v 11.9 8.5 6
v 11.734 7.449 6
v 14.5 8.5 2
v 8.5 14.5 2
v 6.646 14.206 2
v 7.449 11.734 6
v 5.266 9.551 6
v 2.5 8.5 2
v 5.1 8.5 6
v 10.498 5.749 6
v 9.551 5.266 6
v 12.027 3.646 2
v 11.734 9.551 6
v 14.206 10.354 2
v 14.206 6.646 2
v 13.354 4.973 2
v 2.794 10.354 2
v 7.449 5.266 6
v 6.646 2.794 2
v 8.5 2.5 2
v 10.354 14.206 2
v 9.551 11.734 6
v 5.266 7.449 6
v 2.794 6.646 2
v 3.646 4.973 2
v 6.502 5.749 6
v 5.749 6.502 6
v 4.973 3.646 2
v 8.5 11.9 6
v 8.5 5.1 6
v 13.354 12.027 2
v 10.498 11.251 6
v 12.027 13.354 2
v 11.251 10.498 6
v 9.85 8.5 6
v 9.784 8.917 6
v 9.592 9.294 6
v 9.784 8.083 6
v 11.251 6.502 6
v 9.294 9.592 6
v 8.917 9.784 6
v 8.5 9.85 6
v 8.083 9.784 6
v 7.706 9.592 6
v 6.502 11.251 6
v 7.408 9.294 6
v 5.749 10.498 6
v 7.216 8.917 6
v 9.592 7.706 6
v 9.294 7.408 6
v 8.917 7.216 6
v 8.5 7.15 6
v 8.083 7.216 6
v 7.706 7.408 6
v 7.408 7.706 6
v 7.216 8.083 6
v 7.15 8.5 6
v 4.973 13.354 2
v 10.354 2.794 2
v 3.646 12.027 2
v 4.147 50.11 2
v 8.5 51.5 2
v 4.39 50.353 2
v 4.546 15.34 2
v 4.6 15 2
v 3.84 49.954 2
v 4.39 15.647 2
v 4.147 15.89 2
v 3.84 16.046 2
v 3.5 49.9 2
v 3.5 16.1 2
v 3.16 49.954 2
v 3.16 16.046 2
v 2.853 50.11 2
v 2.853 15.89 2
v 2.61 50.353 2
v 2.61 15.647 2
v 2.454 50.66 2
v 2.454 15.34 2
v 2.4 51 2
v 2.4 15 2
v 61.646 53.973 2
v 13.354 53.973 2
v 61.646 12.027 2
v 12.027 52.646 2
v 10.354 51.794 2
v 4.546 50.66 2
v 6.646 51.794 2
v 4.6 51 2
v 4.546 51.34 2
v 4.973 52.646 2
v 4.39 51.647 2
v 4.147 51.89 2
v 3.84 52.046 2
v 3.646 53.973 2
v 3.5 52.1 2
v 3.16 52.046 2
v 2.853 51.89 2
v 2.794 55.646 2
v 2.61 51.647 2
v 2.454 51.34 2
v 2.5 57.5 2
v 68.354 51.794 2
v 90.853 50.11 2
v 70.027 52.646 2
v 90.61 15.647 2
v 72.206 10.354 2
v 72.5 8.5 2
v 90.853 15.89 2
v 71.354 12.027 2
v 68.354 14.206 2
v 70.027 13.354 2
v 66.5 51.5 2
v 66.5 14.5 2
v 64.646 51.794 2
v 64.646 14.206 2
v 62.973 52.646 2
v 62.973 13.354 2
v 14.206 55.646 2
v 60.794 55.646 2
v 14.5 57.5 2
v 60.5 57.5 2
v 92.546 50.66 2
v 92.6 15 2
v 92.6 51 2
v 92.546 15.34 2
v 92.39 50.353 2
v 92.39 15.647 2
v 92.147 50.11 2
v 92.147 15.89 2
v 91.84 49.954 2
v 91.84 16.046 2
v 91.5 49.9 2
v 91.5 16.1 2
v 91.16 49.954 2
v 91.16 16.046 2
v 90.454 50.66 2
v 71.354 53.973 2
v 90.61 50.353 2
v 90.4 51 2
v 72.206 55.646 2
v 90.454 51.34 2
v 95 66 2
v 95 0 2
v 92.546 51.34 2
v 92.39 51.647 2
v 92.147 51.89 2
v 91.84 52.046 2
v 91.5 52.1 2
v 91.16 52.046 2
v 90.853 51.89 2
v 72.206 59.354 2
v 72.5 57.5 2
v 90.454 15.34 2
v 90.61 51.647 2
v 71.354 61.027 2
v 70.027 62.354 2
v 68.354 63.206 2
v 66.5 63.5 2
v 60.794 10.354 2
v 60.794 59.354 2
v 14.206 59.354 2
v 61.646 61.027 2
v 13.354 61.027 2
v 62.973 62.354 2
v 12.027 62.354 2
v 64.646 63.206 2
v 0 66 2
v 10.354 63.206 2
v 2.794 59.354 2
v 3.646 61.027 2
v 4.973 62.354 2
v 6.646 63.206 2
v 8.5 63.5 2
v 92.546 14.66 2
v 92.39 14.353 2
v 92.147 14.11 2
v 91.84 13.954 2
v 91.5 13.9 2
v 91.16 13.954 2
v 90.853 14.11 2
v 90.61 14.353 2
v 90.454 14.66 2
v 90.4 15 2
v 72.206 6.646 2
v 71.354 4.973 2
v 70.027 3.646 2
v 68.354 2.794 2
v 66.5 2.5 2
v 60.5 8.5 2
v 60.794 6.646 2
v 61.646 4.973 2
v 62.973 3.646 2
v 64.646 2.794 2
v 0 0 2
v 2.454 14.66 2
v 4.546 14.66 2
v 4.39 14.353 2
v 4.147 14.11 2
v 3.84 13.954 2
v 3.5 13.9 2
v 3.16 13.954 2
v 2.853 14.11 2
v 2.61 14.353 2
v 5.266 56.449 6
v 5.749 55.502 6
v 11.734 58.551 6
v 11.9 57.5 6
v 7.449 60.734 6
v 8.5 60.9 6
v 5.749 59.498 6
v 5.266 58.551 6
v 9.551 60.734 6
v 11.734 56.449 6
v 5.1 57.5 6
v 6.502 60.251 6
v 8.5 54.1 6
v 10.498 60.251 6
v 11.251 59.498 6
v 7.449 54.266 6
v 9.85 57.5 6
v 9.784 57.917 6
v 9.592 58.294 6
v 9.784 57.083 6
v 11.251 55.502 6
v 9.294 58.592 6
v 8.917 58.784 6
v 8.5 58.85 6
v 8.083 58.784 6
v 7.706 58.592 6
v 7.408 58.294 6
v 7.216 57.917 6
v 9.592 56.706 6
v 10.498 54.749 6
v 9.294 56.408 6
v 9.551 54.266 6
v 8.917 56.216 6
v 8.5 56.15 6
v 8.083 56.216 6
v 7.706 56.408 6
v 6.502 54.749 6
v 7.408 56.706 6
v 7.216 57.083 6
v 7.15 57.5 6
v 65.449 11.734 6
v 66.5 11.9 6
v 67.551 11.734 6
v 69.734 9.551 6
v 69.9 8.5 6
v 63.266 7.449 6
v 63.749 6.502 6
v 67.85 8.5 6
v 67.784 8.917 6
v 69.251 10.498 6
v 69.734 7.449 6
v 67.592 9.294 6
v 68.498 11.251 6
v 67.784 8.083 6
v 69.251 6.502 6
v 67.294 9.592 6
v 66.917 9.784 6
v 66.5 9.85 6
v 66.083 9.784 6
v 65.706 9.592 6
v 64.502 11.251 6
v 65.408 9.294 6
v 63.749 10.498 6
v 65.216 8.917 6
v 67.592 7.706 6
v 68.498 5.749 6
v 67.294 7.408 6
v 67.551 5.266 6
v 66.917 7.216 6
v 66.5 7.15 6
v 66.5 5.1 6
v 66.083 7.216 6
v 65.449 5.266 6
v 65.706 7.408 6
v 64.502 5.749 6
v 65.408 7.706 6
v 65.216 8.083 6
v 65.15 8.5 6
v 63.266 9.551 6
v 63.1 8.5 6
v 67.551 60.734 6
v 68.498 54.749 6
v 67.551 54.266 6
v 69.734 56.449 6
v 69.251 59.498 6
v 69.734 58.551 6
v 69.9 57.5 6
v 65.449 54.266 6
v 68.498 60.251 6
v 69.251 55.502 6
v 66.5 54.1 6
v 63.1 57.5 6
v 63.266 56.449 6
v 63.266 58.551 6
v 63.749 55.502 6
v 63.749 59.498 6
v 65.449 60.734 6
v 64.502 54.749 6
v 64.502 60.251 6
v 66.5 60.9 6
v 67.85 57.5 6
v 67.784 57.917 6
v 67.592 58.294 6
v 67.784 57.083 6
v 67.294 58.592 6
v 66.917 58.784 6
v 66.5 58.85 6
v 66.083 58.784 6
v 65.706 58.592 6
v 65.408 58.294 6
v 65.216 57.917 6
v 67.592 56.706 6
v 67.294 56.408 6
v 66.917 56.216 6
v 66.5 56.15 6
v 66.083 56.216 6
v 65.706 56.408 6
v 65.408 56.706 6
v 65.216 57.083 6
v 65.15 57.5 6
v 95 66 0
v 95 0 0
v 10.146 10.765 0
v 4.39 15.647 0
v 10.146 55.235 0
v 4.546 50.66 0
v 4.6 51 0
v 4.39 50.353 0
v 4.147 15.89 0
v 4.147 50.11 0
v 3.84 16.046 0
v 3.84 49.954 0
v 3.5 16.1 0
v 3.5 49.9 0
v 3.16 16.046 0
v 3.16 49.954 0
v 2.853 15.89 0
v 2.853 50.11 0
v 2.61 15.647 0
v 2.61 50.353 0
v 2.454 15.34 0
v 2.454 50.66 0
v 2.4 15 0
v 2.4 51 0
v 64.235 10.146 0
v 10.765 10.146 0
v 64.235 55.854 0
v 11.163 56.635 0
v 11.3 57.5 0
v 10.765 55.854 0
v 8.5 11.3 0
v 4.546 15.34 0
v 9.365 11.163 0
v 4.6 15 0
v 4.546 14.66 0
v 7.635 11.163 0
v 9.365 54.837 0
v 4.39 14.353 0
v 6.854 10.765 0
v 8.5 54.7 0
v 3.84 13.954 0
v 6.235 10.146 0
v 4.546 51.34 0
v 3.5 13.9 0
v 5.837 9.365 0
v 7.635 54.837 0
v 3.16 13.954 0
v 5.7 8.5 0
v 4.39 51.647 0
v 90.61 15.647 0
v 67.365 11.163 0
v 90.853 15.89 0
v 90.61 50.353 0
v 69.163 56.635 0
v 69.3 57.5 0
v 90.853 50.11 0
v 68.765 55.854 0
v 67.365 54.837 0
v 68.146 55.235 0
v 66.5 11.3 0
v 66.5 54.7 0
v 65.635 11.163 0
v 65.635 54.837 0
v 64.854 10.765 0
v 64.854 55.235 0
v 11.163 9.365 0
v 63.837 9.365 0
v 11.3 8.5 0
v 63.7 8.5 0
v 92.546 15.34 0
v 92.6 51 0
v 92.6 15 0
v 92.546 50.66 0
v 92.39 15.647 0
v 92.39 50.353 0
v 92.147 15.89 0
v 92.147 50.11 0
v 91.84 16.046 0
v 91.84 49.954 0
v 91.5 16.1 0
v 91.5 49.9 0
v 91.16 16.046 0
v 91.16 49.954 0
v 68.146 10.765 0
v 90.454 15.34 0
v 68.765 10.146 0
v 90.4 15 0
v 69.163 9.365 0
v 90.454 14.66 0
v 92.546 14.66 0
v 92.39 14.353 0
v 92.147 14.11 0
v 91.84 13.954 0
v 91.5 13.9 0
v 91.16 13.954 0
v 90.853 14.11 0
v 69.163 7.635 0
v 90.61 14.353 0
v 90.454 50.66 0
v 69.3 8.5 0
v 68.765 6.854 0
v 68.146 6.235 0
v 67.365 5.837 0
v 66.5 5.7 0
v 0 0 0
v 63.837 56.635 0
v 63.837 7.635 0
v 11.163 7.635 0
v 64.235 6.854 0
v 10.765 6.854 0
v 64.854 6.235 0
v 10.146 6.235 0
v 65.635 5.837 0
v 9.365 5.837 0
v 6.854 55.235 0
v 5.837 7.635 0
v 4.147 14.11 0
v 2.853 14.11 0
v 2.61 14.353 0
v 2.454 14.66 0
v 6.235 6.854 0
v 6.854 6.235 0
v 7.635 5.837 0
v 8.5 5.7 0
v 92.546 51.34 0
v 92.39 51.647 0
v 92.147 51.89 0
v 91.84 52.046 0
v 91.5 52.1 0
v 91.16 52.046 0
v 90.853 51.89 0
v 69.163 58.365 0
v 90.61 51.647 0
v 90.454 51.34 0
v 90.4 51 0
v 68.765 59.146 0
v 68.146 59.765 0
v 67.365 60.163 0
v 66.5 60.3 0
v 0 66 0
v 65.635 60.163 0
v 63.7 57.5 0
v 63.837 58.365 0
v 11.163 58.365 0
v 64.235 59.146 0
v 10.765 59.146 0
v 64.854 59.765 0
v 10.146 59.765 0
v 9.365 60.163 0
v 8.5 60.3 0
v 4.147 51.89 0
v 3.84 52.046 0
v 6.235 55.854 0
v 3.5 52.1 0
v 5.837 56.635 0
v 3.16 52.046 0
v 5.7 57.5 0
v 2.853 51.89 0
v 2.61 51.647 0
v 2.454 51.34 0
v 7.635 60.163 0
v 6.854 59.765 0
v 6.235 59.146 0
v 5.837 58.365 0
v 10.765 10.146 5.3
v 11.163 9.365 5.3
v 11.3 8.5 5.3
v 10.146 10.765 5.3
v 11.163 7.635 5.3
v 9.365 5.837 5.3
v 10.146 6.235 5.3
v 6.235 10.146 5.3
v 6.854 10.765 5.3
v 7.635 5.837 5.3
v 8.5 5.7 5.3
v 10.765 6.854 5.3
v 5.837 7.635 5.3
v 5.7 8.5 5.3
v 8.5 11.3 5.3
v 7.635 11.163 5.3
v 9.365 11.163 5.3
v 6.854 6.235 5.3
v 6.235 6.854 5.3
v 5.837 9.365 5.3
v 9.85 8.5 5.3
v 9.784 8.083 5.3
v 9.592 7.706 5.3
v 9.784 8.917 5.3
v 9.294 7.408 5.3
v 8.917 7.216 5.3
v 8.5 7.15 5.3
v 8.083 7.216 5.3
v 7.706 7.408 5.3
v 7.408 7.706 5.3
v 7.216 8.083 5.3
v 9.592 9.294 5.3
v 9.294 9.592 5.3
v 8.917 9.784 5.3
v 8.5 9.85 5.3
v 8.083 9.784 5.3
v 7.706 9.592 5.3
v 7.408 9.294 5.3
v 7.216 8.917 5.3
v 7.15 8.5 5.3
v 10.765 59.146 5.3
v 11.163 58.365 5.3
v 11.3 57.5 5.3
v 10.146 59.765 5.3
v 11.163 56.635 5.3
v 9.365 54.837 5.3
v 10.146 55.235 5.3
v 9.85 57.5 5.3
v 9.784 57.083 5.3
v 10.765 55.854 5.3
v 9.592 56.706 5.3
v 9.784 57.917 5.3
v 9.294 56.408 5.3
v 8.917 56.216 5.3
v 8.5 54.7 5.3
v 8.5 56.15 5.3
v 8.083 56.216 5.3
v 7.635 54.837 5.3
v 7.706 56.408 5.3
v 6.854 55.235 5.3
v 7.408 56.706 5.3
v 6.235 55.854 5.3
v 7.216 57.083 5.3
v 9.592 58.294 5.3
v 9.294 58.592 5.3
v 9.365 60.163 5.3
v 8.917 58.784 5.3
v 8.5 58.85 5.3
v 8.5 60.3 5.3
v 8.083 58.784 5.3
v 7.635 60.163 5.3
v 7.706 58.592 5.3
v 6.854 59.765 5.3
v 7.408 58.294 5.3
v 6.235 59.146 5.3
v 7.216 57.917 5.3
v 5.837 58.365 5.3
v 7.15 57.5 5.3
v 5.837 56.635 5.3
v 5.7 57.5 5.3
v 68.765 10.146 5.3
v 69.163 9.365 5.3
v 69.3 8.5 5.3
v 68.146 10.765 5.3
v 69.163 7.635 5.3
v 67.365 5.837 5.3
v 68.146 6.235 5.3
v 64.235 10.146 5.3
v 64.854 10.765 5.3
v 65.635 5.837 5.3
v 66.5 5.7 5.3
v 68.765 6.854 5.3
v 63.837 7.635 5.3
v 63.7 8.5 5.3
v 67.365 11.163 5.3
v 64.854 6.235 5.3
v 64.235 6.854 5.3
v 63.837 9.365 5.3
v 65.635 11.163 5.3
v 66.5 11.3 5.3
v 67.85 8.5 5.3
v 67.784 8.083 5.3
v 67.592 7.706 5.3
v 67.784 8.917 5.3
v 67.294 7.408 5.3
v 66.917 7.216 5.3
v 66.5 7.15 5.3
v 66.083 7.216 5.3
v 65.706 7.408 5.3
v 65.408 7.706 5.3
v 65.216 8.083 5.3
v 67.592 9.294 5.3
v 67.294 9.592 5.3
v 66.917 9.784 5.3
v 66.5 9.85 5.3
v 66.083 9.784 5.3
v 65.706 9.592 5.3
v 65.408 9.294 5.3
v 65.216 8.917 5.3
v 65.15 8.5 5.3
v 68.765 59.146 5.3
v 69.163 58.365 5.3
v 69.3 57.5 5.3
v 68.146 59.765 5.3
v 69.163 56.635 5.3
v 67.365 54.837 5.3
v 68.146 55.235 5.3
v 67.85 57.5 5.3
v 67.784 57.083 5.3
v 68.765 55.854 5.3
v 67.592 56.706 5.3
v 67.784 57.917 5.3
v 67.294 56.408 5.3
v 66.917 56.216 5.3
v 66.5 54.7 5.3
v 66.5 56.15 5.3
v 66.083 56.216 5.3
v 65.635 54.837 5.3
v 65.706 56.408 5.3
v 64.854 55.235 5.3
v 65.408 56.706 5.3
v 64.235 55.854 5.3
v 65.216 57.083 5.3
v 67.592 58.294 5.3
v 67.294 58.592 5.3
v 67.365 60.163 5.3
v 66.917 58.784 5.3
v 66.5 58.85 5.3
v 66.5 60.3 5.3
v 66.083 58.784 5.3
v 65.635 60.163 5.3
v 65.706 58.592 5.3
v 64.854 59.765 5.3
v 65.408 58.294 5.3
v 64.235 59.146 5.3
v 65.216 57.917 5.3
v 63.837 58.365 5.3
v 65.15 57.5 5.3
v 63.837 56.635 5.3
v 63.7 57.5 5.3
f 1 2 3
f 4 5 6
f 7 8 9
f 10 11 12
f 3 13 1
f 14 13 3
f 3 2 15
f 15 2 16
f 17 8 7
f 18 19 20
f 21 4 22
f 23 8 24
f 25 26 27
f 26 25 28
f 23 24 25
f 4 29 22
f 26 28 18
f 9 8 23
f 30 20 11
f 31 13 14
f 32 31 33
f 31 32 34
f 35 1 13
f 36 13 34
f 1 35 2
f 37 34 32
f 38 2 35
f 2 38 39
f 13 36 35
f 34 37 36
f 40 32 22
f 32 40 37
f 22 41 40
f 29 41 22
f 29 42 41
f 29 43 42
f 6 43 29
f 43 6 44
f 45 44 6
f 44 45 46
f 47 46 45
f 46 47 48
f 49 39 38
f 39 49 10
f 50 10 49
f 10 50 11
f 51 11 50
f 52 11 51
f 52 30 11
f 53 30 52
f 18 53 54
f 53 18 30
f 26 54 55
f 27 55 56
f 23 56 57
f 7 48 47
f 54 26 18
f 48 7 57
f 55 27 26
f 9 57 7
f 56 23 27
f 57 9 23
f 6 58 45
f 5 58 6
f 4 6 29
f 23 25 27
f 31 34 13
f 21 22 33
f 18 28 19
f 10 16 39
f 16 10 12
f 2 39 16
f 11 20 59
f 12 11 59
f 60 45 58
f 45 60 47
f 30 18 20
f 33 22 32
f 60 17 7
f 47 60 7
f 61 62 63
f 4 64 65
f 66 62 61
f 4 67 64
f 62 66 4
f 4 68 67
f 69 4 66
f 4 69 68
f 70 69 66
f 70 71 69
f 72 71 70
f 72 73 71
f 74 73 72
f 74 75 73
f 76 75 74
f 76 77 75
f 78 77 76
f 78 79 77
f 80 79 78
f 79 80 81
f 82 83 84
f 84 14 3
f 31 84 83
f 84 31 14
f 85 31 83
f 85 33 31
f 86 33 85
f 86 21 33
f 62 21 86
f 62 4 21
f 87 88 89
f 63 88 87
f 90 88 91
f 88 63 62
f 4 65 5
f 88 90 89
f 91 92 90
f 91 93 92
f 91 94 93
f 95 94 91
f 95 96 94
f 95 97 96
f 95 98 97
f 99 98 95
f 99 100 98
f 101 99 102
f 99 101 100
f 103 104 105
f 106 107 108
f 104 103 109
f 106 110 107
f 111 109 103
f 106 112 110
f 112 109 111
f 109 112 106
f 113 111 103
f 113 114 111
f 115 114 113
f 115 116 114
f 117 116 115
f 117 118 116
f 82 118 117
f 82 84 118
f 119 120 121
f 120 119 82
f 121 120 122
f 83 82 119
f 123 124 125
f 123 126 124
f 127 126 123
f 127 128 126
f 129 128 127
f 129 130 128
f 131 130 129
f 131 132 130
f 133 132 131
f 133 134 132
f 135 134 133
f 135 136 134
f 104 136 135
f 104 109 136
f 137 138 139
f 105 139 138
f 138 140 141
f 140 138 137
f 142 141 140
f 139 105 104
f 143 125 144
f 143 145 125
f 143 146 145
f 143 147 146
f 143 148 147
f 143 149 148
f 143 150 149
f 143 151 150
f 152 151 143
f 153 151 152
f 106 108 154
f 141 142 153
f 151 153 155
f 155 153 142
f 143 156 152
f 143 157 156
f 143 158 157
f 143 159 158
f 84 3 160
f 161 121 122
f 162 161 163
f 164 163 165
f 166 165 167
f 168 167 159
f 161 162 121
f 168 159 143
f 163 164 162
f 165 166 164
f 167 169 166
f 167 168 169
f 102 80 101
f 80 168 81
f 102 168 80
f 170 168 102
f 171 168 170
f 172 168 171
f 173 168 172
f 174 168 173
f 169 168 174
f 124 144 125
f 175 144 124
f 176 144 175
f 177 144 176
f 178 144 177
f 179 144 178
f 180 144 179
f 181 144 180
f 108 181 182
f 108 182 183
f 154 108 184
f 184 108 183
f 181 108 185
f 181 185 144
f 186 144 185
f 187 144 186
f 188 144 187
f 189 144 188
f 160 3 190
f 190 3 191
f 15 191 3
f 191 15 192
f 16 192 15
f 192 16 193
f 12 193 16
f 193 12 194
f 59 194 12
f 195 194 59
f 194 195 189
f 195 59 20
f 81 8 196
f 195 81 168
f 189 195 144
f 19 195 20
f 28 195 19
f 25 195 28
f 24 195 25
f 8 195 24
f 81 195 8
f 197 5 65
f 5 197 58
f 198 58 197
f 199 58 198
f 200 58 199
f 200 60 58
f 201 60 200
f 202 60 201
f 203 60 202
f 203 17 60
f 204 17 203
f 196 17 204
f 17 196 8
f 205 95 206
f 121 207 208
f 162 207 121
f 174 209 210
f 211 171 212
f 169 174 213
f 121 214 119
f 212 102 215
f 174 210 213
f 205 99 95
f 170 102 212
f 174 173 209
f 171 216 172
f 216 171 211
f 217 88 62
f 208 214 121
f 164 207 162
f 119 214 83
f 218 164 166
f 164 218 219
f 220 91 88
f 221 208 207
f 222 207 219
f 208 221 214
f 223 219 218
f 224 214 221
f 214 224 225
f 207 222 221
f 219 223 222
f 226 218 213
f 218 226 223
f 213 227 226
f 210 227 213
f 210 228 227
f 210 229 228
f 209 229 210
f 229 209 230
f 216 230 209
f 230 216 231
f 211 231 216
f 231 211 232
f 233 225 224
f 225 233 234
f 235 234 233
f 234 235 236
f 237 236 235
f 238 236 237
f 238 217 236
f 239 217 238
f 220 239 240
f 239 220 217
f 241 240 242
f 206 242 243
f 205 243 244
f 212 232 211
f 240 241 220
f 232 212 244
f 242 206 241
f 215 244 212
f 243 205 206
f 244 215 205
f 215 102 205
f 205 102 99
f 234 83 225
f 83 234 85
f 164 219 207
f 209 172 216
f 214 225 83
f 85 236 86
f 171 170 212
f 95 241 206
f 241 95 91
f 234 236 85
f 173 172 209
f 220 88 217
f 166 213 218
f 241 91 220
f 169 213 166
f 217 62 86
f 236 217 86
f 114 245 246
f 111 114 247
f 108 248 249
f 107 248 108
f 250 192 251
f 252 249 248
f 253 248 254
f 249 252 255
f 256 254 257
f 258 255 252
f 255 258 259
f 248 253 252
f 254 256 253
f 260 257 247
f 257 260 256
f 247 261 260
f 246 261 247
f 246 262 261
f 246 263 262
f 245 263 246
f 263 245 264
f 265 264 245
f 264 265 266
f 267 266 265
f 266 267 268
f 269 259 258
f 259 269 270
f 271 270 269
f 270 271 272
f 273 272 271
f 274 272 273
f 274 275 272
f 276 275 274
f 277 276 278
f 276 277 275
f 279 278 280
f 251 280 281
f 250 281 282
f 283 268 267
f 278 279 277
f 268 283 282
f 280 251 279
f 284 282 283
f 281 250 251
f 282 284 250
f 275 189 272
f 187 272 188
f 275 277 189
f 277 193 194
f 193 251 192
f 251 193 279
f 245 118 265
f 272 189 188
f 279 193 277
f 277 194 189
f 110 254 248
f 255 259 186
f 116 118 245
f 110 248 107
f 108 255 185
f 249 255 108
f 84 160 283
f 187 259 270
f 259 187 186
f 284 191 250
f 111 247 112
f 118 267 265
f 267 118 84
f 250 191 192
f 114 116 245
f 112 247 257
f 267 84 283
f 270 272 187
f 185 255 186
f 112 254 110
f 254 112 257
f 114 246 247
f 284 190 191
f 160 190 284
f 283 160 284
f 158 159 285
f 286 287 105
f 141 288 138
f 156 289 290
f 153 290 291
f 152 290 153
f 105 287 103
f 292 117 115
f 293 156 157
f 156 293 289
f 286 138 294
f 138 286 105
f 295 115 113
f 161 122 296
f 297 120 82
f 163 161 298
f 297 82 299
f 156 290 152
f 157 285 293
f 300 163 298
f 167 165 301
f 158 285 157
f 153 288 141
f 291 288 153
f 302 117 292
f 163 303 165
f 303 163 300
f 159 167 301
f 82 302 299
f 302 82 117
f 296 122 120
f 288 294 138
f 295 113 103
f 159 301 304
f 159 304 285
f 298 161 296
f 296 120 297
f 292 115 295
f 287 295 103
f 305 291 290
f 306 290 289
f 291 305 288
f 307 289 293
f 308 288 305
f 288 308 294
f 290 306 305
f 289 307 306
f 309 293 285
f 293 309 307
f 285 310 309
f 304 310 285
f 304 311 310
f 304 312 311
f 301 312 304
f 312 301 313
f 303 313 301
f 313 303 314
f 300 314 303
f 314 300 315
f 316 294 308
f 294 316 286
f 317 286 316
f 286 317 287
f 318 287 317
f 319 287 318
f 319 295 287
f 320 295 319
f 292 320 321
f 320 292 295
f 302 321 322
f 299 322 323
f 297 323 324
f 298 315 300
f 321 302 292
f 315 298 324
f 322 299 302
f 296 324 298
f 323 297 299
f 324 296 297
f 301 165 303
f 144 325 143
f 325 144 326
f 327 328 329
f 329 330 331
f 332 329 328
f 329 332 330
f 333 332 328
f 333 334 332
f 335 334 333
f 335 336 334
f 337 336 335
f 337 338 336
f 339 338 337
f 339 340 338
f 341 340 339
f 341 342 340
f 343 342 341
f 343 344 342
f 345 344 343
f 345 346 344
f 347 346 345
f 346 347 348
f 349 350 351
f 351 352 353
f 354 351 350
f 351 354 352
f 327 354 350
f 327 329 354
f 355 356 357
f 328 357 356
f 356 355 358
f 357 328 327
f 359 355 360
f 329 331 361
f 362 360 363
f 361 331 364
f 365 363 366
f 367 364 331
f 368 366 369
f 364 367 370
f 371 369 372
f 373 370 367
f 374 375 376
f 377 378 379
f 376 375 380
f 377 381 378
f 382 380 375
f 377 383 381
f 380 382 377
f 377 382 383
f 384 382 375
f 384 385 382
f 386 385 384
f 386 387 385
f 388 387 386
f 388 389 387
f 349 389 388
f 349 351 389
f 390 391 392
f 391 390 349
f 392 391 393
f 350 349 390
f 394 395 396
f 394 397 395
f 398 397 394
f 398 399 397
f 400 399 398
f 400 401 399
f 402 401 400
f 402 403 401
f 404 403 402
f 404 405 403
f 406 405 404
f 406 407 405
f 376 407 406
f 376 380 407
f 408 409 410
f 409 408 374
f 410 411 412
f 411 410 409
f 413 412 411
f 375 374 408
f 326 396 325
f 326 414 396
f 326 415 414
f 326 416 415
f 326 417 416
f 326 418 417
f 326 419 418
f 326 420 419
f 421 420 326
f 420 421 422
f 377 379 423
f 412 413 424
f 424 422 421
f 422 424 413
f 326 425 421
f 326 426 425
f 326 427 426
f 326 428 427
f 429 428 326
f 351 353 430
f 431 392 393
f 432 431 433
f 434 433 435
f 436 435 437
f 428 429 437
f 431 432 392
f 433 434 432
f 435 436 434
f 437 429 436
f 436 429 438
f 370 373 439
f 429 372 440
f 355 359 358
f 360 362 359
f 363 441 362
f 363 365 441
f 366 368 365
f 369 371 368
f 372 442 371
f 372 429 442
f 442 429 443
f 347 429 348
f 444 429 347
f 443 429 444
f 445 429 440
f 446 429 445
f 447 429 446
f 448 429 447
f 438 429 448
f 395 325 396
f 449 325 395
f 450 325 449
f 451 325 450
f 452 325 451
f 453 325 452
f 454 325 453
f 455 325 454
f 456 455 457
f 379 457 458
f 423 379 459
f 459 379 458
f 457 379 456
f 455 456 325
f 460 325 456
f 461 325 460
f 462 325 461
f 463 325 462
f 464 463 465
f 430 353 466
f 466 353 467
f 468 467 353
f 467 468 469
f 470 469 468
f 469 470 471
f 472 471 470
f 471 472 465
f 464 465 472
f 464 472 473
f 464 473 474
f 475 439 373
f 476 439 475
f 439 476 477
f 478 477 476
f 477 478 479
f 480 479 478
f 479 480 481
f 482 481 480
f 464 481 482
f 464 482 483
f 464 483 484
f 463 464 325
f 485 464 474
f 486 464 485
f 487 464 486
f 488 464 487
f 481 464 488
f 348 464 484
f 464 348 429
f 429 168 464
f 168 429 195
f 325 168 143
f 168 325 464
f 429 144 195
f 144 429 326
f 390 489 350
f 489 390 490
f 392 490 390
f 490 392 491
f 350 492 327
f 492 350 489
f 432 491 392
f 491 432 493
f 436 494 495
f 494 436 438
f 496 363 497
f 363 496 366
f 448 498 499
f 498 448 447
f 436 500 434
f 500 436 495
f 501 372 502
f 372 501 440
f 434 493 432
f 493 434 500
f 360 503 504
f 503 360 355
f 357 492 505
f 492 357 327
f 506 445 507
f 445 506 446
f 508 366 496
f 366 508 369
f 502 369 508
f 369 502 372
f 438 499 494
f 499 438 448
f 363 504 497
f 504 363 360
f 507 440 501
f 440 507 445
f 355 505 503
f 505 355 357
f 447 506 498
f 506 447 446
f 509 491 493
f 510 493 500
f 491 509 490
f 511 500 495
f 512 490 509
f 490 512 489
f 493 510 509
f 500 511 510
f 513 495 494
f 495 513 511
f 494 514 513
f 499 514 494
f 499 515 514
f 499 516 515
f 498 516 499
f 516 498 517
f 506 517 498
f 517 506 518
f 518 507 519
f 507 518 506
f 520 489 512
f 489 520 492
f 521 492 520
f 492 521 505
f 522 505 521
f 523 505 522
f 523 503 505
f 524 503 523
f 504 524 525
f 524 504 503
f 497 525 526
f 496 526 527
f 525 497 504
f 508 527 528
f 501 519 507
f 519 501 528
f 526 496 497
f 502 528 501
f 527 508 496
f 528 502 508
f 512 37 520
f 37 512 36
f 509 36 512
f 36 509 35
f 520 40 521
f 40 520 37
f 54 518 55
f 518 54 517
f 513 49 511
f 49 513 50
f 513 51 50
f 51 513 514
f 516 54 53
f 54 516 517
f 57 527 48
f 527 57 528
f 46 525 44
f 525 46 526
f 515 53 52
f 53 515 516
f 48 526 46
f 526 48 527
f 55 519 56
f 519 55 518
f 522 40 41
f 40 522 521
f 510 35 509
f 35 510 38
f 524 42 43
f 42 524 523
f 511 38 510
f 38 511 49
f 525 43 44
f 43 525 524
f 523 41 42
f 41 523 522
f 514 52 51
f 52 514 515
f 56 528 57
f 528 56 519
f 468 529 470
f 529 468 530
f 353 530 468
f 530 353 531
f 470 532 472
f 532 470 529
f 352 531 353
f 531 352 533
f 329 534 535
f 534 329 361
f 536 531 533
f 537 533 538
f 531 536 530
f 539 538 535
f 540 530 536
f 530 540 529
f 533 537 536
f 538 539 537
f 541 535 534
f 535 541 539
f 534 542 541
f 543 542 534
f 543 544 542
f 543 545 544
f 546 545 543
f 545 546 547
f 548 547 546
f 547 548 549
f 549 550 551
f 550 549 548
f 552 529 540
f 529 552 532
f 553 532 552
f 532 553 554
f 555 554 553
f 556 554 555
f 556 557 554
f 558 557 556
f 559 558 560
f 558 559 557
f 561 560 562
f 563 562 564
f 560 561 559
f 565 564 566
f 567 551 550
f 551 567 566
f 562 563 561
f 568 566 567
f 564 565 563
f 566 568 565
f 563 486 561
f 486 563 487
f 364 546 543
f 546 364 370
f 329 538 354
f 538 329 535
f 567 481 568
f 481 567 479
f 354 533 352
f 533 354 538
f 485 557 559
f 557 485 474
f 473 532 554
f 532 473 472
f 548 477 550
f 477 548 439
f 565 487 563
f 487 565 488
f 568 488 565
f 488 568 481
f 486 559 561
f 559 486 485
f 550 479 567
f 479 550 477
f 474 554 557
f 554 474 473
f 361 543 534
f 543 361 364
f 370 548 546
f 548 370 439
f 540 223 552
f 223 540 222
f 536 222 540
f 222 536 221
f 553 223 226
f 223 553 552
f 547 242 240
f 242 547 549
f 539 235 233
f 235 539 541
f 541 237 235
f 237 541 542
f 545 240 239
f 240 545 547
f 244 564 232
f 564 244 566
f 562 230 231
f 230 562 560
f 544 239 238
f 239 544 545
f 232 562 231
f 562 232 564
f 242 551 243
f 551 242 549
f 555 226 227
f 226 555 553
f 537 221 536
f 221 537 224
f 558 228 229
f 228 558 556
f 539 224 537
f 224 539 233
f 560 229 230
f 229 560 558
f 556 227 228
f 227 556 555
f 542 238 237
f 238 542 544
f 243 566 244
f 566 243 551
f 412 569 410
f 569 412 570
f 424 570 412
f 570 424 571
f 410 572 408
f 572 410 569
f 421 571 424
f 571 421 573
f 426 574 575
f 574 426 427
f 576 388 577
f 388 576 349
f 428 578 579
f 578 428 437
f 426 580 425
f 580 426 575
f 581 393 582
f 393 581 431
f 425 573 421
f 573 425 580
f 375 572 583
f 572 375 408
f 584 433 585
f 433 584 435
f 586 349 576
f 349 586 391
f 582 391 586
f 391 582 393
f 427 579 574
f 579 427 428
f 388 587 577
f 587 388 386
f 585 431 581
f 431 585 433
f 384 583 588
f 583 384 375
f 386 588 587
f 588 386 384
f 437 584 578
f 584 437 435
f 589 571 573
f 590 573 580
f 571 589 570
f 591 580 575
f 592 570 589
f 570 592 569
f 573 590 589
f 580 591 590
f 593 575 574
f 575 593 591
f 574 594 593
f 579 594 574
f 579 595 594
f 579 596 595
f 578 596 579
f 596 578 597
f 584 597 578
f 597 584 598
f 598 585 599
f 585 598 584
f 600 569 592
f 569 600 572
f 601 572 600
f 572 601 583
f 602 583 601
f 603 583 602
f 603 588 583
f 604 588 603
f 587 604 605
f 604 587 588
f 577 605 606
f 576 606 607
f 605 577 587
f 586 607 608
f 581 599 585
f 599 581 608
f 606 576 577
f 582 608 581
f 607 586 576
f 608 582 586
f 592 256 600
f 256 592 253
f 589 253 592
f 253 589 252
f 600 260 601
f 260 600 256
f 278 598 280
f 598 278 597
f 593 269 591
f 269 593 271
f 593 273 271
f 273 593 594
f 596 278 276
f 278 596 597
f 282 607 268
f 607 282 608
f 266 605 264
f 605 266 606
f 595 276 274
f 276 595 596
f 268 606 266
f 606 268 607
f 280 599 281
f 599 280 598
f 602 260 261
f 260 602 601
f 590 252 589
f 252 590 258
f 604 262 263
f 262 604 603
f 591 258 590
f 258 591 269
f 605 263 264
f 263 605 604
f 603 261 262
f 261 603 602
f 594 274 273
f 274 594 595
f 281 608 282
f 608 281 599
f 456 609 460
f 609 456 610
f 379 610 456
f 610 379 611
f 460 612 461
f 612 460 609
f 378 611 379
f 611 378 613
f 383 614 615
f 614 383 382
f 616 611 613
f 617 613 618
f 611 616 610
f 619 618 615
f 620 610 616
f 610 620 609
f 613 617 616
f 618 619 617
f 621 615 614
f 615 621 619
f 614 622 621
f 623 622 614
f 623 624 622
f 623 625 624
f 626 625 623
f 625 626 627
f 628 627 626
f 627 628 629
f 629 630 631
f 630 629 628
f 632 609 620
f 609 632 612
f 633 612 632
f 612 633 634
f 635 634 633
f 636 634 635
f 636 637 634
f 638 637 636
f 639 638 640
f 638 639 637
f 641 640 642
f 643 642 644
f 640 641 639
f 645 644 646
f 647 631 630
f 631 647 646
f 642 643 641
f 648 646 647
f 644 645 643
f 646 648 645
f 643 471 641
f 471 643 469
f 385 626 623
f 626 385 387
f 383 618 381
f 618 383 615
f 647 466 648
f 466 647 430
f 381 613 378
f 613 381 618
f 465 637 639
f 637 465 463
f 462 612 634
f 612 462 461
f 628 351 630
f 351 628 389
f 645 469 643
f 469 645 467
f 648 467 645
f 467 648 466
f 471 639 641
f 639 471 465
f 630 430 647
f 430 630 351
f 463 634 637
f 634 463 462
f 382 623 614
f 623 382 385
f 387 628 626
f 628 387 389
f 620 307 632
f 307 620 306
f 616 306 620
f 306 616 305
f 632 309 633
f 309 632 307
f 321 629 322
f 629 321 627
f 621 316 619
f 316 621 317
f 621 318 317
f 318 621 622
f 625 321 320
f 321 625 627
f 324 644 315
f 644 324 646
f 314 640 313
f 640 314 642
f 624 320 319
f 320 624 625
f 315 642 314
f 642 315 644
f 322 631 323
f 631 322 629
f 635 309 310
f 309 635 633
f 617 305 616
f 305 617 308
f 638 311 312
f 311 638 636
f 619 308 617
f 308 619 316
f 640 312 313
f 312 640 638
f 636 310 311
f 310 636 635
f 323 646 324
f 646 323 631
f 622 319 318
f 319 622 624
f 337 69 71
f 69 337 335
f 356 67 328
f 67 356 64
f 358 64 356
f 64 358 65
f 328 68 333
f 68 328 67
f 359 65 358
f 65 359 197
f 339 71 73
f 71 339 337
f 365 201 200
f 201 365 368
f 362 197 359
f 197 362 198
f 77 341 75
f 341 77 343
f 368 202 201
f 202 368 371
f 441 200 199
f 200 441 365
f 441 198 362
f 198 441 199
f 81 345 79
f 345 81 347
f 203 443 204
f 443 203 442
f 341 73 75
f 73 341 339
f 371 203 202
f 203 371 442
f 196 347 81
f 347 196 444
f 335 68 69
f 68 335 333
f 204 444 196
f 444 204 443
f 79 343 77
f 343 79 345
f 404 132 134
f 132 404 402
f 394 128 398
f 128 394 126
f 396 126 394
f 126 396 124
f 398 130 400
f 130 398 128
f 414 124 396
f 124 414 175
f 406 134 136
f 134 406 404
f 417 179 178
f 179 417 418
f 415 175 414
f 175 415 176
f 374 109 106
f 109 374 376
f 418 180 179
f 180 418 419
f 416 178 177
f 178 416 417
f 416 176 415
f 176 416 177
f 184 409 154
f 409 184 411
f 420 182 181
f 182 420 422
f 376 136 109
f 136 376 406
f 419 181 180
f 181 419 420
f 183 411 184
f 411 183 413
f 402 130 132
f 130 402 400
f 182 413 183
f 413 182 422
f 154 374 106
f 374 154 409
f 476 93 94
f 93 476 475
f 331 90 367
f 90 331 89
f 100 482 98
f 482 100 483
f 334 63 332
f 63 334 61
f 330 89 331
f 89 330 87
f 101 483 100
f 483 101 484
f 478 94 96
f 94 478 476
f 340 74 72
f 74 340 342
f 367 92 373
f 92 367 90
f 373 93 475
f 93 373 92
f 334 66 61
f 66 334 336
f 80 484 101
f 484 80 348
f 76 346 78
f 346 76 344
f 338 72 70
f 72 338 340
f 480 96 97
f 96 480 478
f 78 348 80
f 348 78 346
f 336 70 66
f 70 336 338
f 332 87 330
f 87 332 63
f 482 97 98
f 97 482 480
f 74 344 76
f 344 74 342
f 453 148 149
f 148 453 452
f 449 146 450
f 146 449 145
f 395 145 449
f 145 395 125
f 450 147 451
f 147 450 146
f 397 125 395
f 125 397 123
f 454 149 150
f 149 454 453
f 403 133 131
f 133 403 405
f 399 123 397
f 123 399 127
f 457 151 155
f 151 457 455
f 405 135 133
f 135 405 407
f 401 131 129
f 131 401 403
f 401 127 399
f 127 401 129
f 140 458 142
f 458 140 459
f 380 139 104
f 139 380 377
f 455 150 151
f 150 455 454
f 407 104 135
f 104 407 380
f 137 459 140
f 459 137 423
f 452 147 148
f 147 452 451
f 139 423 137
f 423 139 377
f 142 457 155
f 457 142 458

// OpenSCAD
// SPDX-FileCopyrightText: 2024 Rafael G. Martins <rafael@rafaelmartins.eng.br>
// SPDX-License-Identifier: CERN-OHL-S-2.0

padding = 5;

length = 85 + 2 * padding;
width = 56 + 2 * padding;

screw_padding = 3.5 + padding;
screw_distance_x = 58;
screw_distance_y = 49;

holder_padding_x = 3.5;
holder_padding_y = 15;

thickness = 2;

difference() {
    union() {
        cube([length, width, thickness]);
        translate([screw_padding, screw_padding, thickness])
            for(i=[0:1])
                for(j=[0:1])
                    translate([i * screw_distance_x, j * screw_distance_y, 0])
                        cylinder(h=4, d1=12, d2=6.8, $fn=20);
    }

    translate([screw_padding, screw_padding, 0])
        for(i=[0:1])
            for(j=[0:1])
                translate([i * screw_distance_x, j * screw_distance_y, 0]) {
                    cylinder(h=thickness + 3.3, d=5.6, $fn=20);
                    cylinder(h=thickness + 4, d=2.7, $fn=20);
                }

    translate([holder_padding_x, holder_padding_y, 0])
        cylinder(h=thickness, d=2.2, $fn=20);
    translate([length - holder_padding_x, holder_padding_y, 0])
        cylinder(h=thickness, d=2.2, $fn=20);
    translate([holder_padding_x, width - holder_padding_y, 0])
        cylinder(h=thickness, d=2.2, $fn=20);
    translate([length - holder_padding_x, width - holder_padding_y, 0])
        cylinder(h=thickness, d=2.2, $fn=20);
}
